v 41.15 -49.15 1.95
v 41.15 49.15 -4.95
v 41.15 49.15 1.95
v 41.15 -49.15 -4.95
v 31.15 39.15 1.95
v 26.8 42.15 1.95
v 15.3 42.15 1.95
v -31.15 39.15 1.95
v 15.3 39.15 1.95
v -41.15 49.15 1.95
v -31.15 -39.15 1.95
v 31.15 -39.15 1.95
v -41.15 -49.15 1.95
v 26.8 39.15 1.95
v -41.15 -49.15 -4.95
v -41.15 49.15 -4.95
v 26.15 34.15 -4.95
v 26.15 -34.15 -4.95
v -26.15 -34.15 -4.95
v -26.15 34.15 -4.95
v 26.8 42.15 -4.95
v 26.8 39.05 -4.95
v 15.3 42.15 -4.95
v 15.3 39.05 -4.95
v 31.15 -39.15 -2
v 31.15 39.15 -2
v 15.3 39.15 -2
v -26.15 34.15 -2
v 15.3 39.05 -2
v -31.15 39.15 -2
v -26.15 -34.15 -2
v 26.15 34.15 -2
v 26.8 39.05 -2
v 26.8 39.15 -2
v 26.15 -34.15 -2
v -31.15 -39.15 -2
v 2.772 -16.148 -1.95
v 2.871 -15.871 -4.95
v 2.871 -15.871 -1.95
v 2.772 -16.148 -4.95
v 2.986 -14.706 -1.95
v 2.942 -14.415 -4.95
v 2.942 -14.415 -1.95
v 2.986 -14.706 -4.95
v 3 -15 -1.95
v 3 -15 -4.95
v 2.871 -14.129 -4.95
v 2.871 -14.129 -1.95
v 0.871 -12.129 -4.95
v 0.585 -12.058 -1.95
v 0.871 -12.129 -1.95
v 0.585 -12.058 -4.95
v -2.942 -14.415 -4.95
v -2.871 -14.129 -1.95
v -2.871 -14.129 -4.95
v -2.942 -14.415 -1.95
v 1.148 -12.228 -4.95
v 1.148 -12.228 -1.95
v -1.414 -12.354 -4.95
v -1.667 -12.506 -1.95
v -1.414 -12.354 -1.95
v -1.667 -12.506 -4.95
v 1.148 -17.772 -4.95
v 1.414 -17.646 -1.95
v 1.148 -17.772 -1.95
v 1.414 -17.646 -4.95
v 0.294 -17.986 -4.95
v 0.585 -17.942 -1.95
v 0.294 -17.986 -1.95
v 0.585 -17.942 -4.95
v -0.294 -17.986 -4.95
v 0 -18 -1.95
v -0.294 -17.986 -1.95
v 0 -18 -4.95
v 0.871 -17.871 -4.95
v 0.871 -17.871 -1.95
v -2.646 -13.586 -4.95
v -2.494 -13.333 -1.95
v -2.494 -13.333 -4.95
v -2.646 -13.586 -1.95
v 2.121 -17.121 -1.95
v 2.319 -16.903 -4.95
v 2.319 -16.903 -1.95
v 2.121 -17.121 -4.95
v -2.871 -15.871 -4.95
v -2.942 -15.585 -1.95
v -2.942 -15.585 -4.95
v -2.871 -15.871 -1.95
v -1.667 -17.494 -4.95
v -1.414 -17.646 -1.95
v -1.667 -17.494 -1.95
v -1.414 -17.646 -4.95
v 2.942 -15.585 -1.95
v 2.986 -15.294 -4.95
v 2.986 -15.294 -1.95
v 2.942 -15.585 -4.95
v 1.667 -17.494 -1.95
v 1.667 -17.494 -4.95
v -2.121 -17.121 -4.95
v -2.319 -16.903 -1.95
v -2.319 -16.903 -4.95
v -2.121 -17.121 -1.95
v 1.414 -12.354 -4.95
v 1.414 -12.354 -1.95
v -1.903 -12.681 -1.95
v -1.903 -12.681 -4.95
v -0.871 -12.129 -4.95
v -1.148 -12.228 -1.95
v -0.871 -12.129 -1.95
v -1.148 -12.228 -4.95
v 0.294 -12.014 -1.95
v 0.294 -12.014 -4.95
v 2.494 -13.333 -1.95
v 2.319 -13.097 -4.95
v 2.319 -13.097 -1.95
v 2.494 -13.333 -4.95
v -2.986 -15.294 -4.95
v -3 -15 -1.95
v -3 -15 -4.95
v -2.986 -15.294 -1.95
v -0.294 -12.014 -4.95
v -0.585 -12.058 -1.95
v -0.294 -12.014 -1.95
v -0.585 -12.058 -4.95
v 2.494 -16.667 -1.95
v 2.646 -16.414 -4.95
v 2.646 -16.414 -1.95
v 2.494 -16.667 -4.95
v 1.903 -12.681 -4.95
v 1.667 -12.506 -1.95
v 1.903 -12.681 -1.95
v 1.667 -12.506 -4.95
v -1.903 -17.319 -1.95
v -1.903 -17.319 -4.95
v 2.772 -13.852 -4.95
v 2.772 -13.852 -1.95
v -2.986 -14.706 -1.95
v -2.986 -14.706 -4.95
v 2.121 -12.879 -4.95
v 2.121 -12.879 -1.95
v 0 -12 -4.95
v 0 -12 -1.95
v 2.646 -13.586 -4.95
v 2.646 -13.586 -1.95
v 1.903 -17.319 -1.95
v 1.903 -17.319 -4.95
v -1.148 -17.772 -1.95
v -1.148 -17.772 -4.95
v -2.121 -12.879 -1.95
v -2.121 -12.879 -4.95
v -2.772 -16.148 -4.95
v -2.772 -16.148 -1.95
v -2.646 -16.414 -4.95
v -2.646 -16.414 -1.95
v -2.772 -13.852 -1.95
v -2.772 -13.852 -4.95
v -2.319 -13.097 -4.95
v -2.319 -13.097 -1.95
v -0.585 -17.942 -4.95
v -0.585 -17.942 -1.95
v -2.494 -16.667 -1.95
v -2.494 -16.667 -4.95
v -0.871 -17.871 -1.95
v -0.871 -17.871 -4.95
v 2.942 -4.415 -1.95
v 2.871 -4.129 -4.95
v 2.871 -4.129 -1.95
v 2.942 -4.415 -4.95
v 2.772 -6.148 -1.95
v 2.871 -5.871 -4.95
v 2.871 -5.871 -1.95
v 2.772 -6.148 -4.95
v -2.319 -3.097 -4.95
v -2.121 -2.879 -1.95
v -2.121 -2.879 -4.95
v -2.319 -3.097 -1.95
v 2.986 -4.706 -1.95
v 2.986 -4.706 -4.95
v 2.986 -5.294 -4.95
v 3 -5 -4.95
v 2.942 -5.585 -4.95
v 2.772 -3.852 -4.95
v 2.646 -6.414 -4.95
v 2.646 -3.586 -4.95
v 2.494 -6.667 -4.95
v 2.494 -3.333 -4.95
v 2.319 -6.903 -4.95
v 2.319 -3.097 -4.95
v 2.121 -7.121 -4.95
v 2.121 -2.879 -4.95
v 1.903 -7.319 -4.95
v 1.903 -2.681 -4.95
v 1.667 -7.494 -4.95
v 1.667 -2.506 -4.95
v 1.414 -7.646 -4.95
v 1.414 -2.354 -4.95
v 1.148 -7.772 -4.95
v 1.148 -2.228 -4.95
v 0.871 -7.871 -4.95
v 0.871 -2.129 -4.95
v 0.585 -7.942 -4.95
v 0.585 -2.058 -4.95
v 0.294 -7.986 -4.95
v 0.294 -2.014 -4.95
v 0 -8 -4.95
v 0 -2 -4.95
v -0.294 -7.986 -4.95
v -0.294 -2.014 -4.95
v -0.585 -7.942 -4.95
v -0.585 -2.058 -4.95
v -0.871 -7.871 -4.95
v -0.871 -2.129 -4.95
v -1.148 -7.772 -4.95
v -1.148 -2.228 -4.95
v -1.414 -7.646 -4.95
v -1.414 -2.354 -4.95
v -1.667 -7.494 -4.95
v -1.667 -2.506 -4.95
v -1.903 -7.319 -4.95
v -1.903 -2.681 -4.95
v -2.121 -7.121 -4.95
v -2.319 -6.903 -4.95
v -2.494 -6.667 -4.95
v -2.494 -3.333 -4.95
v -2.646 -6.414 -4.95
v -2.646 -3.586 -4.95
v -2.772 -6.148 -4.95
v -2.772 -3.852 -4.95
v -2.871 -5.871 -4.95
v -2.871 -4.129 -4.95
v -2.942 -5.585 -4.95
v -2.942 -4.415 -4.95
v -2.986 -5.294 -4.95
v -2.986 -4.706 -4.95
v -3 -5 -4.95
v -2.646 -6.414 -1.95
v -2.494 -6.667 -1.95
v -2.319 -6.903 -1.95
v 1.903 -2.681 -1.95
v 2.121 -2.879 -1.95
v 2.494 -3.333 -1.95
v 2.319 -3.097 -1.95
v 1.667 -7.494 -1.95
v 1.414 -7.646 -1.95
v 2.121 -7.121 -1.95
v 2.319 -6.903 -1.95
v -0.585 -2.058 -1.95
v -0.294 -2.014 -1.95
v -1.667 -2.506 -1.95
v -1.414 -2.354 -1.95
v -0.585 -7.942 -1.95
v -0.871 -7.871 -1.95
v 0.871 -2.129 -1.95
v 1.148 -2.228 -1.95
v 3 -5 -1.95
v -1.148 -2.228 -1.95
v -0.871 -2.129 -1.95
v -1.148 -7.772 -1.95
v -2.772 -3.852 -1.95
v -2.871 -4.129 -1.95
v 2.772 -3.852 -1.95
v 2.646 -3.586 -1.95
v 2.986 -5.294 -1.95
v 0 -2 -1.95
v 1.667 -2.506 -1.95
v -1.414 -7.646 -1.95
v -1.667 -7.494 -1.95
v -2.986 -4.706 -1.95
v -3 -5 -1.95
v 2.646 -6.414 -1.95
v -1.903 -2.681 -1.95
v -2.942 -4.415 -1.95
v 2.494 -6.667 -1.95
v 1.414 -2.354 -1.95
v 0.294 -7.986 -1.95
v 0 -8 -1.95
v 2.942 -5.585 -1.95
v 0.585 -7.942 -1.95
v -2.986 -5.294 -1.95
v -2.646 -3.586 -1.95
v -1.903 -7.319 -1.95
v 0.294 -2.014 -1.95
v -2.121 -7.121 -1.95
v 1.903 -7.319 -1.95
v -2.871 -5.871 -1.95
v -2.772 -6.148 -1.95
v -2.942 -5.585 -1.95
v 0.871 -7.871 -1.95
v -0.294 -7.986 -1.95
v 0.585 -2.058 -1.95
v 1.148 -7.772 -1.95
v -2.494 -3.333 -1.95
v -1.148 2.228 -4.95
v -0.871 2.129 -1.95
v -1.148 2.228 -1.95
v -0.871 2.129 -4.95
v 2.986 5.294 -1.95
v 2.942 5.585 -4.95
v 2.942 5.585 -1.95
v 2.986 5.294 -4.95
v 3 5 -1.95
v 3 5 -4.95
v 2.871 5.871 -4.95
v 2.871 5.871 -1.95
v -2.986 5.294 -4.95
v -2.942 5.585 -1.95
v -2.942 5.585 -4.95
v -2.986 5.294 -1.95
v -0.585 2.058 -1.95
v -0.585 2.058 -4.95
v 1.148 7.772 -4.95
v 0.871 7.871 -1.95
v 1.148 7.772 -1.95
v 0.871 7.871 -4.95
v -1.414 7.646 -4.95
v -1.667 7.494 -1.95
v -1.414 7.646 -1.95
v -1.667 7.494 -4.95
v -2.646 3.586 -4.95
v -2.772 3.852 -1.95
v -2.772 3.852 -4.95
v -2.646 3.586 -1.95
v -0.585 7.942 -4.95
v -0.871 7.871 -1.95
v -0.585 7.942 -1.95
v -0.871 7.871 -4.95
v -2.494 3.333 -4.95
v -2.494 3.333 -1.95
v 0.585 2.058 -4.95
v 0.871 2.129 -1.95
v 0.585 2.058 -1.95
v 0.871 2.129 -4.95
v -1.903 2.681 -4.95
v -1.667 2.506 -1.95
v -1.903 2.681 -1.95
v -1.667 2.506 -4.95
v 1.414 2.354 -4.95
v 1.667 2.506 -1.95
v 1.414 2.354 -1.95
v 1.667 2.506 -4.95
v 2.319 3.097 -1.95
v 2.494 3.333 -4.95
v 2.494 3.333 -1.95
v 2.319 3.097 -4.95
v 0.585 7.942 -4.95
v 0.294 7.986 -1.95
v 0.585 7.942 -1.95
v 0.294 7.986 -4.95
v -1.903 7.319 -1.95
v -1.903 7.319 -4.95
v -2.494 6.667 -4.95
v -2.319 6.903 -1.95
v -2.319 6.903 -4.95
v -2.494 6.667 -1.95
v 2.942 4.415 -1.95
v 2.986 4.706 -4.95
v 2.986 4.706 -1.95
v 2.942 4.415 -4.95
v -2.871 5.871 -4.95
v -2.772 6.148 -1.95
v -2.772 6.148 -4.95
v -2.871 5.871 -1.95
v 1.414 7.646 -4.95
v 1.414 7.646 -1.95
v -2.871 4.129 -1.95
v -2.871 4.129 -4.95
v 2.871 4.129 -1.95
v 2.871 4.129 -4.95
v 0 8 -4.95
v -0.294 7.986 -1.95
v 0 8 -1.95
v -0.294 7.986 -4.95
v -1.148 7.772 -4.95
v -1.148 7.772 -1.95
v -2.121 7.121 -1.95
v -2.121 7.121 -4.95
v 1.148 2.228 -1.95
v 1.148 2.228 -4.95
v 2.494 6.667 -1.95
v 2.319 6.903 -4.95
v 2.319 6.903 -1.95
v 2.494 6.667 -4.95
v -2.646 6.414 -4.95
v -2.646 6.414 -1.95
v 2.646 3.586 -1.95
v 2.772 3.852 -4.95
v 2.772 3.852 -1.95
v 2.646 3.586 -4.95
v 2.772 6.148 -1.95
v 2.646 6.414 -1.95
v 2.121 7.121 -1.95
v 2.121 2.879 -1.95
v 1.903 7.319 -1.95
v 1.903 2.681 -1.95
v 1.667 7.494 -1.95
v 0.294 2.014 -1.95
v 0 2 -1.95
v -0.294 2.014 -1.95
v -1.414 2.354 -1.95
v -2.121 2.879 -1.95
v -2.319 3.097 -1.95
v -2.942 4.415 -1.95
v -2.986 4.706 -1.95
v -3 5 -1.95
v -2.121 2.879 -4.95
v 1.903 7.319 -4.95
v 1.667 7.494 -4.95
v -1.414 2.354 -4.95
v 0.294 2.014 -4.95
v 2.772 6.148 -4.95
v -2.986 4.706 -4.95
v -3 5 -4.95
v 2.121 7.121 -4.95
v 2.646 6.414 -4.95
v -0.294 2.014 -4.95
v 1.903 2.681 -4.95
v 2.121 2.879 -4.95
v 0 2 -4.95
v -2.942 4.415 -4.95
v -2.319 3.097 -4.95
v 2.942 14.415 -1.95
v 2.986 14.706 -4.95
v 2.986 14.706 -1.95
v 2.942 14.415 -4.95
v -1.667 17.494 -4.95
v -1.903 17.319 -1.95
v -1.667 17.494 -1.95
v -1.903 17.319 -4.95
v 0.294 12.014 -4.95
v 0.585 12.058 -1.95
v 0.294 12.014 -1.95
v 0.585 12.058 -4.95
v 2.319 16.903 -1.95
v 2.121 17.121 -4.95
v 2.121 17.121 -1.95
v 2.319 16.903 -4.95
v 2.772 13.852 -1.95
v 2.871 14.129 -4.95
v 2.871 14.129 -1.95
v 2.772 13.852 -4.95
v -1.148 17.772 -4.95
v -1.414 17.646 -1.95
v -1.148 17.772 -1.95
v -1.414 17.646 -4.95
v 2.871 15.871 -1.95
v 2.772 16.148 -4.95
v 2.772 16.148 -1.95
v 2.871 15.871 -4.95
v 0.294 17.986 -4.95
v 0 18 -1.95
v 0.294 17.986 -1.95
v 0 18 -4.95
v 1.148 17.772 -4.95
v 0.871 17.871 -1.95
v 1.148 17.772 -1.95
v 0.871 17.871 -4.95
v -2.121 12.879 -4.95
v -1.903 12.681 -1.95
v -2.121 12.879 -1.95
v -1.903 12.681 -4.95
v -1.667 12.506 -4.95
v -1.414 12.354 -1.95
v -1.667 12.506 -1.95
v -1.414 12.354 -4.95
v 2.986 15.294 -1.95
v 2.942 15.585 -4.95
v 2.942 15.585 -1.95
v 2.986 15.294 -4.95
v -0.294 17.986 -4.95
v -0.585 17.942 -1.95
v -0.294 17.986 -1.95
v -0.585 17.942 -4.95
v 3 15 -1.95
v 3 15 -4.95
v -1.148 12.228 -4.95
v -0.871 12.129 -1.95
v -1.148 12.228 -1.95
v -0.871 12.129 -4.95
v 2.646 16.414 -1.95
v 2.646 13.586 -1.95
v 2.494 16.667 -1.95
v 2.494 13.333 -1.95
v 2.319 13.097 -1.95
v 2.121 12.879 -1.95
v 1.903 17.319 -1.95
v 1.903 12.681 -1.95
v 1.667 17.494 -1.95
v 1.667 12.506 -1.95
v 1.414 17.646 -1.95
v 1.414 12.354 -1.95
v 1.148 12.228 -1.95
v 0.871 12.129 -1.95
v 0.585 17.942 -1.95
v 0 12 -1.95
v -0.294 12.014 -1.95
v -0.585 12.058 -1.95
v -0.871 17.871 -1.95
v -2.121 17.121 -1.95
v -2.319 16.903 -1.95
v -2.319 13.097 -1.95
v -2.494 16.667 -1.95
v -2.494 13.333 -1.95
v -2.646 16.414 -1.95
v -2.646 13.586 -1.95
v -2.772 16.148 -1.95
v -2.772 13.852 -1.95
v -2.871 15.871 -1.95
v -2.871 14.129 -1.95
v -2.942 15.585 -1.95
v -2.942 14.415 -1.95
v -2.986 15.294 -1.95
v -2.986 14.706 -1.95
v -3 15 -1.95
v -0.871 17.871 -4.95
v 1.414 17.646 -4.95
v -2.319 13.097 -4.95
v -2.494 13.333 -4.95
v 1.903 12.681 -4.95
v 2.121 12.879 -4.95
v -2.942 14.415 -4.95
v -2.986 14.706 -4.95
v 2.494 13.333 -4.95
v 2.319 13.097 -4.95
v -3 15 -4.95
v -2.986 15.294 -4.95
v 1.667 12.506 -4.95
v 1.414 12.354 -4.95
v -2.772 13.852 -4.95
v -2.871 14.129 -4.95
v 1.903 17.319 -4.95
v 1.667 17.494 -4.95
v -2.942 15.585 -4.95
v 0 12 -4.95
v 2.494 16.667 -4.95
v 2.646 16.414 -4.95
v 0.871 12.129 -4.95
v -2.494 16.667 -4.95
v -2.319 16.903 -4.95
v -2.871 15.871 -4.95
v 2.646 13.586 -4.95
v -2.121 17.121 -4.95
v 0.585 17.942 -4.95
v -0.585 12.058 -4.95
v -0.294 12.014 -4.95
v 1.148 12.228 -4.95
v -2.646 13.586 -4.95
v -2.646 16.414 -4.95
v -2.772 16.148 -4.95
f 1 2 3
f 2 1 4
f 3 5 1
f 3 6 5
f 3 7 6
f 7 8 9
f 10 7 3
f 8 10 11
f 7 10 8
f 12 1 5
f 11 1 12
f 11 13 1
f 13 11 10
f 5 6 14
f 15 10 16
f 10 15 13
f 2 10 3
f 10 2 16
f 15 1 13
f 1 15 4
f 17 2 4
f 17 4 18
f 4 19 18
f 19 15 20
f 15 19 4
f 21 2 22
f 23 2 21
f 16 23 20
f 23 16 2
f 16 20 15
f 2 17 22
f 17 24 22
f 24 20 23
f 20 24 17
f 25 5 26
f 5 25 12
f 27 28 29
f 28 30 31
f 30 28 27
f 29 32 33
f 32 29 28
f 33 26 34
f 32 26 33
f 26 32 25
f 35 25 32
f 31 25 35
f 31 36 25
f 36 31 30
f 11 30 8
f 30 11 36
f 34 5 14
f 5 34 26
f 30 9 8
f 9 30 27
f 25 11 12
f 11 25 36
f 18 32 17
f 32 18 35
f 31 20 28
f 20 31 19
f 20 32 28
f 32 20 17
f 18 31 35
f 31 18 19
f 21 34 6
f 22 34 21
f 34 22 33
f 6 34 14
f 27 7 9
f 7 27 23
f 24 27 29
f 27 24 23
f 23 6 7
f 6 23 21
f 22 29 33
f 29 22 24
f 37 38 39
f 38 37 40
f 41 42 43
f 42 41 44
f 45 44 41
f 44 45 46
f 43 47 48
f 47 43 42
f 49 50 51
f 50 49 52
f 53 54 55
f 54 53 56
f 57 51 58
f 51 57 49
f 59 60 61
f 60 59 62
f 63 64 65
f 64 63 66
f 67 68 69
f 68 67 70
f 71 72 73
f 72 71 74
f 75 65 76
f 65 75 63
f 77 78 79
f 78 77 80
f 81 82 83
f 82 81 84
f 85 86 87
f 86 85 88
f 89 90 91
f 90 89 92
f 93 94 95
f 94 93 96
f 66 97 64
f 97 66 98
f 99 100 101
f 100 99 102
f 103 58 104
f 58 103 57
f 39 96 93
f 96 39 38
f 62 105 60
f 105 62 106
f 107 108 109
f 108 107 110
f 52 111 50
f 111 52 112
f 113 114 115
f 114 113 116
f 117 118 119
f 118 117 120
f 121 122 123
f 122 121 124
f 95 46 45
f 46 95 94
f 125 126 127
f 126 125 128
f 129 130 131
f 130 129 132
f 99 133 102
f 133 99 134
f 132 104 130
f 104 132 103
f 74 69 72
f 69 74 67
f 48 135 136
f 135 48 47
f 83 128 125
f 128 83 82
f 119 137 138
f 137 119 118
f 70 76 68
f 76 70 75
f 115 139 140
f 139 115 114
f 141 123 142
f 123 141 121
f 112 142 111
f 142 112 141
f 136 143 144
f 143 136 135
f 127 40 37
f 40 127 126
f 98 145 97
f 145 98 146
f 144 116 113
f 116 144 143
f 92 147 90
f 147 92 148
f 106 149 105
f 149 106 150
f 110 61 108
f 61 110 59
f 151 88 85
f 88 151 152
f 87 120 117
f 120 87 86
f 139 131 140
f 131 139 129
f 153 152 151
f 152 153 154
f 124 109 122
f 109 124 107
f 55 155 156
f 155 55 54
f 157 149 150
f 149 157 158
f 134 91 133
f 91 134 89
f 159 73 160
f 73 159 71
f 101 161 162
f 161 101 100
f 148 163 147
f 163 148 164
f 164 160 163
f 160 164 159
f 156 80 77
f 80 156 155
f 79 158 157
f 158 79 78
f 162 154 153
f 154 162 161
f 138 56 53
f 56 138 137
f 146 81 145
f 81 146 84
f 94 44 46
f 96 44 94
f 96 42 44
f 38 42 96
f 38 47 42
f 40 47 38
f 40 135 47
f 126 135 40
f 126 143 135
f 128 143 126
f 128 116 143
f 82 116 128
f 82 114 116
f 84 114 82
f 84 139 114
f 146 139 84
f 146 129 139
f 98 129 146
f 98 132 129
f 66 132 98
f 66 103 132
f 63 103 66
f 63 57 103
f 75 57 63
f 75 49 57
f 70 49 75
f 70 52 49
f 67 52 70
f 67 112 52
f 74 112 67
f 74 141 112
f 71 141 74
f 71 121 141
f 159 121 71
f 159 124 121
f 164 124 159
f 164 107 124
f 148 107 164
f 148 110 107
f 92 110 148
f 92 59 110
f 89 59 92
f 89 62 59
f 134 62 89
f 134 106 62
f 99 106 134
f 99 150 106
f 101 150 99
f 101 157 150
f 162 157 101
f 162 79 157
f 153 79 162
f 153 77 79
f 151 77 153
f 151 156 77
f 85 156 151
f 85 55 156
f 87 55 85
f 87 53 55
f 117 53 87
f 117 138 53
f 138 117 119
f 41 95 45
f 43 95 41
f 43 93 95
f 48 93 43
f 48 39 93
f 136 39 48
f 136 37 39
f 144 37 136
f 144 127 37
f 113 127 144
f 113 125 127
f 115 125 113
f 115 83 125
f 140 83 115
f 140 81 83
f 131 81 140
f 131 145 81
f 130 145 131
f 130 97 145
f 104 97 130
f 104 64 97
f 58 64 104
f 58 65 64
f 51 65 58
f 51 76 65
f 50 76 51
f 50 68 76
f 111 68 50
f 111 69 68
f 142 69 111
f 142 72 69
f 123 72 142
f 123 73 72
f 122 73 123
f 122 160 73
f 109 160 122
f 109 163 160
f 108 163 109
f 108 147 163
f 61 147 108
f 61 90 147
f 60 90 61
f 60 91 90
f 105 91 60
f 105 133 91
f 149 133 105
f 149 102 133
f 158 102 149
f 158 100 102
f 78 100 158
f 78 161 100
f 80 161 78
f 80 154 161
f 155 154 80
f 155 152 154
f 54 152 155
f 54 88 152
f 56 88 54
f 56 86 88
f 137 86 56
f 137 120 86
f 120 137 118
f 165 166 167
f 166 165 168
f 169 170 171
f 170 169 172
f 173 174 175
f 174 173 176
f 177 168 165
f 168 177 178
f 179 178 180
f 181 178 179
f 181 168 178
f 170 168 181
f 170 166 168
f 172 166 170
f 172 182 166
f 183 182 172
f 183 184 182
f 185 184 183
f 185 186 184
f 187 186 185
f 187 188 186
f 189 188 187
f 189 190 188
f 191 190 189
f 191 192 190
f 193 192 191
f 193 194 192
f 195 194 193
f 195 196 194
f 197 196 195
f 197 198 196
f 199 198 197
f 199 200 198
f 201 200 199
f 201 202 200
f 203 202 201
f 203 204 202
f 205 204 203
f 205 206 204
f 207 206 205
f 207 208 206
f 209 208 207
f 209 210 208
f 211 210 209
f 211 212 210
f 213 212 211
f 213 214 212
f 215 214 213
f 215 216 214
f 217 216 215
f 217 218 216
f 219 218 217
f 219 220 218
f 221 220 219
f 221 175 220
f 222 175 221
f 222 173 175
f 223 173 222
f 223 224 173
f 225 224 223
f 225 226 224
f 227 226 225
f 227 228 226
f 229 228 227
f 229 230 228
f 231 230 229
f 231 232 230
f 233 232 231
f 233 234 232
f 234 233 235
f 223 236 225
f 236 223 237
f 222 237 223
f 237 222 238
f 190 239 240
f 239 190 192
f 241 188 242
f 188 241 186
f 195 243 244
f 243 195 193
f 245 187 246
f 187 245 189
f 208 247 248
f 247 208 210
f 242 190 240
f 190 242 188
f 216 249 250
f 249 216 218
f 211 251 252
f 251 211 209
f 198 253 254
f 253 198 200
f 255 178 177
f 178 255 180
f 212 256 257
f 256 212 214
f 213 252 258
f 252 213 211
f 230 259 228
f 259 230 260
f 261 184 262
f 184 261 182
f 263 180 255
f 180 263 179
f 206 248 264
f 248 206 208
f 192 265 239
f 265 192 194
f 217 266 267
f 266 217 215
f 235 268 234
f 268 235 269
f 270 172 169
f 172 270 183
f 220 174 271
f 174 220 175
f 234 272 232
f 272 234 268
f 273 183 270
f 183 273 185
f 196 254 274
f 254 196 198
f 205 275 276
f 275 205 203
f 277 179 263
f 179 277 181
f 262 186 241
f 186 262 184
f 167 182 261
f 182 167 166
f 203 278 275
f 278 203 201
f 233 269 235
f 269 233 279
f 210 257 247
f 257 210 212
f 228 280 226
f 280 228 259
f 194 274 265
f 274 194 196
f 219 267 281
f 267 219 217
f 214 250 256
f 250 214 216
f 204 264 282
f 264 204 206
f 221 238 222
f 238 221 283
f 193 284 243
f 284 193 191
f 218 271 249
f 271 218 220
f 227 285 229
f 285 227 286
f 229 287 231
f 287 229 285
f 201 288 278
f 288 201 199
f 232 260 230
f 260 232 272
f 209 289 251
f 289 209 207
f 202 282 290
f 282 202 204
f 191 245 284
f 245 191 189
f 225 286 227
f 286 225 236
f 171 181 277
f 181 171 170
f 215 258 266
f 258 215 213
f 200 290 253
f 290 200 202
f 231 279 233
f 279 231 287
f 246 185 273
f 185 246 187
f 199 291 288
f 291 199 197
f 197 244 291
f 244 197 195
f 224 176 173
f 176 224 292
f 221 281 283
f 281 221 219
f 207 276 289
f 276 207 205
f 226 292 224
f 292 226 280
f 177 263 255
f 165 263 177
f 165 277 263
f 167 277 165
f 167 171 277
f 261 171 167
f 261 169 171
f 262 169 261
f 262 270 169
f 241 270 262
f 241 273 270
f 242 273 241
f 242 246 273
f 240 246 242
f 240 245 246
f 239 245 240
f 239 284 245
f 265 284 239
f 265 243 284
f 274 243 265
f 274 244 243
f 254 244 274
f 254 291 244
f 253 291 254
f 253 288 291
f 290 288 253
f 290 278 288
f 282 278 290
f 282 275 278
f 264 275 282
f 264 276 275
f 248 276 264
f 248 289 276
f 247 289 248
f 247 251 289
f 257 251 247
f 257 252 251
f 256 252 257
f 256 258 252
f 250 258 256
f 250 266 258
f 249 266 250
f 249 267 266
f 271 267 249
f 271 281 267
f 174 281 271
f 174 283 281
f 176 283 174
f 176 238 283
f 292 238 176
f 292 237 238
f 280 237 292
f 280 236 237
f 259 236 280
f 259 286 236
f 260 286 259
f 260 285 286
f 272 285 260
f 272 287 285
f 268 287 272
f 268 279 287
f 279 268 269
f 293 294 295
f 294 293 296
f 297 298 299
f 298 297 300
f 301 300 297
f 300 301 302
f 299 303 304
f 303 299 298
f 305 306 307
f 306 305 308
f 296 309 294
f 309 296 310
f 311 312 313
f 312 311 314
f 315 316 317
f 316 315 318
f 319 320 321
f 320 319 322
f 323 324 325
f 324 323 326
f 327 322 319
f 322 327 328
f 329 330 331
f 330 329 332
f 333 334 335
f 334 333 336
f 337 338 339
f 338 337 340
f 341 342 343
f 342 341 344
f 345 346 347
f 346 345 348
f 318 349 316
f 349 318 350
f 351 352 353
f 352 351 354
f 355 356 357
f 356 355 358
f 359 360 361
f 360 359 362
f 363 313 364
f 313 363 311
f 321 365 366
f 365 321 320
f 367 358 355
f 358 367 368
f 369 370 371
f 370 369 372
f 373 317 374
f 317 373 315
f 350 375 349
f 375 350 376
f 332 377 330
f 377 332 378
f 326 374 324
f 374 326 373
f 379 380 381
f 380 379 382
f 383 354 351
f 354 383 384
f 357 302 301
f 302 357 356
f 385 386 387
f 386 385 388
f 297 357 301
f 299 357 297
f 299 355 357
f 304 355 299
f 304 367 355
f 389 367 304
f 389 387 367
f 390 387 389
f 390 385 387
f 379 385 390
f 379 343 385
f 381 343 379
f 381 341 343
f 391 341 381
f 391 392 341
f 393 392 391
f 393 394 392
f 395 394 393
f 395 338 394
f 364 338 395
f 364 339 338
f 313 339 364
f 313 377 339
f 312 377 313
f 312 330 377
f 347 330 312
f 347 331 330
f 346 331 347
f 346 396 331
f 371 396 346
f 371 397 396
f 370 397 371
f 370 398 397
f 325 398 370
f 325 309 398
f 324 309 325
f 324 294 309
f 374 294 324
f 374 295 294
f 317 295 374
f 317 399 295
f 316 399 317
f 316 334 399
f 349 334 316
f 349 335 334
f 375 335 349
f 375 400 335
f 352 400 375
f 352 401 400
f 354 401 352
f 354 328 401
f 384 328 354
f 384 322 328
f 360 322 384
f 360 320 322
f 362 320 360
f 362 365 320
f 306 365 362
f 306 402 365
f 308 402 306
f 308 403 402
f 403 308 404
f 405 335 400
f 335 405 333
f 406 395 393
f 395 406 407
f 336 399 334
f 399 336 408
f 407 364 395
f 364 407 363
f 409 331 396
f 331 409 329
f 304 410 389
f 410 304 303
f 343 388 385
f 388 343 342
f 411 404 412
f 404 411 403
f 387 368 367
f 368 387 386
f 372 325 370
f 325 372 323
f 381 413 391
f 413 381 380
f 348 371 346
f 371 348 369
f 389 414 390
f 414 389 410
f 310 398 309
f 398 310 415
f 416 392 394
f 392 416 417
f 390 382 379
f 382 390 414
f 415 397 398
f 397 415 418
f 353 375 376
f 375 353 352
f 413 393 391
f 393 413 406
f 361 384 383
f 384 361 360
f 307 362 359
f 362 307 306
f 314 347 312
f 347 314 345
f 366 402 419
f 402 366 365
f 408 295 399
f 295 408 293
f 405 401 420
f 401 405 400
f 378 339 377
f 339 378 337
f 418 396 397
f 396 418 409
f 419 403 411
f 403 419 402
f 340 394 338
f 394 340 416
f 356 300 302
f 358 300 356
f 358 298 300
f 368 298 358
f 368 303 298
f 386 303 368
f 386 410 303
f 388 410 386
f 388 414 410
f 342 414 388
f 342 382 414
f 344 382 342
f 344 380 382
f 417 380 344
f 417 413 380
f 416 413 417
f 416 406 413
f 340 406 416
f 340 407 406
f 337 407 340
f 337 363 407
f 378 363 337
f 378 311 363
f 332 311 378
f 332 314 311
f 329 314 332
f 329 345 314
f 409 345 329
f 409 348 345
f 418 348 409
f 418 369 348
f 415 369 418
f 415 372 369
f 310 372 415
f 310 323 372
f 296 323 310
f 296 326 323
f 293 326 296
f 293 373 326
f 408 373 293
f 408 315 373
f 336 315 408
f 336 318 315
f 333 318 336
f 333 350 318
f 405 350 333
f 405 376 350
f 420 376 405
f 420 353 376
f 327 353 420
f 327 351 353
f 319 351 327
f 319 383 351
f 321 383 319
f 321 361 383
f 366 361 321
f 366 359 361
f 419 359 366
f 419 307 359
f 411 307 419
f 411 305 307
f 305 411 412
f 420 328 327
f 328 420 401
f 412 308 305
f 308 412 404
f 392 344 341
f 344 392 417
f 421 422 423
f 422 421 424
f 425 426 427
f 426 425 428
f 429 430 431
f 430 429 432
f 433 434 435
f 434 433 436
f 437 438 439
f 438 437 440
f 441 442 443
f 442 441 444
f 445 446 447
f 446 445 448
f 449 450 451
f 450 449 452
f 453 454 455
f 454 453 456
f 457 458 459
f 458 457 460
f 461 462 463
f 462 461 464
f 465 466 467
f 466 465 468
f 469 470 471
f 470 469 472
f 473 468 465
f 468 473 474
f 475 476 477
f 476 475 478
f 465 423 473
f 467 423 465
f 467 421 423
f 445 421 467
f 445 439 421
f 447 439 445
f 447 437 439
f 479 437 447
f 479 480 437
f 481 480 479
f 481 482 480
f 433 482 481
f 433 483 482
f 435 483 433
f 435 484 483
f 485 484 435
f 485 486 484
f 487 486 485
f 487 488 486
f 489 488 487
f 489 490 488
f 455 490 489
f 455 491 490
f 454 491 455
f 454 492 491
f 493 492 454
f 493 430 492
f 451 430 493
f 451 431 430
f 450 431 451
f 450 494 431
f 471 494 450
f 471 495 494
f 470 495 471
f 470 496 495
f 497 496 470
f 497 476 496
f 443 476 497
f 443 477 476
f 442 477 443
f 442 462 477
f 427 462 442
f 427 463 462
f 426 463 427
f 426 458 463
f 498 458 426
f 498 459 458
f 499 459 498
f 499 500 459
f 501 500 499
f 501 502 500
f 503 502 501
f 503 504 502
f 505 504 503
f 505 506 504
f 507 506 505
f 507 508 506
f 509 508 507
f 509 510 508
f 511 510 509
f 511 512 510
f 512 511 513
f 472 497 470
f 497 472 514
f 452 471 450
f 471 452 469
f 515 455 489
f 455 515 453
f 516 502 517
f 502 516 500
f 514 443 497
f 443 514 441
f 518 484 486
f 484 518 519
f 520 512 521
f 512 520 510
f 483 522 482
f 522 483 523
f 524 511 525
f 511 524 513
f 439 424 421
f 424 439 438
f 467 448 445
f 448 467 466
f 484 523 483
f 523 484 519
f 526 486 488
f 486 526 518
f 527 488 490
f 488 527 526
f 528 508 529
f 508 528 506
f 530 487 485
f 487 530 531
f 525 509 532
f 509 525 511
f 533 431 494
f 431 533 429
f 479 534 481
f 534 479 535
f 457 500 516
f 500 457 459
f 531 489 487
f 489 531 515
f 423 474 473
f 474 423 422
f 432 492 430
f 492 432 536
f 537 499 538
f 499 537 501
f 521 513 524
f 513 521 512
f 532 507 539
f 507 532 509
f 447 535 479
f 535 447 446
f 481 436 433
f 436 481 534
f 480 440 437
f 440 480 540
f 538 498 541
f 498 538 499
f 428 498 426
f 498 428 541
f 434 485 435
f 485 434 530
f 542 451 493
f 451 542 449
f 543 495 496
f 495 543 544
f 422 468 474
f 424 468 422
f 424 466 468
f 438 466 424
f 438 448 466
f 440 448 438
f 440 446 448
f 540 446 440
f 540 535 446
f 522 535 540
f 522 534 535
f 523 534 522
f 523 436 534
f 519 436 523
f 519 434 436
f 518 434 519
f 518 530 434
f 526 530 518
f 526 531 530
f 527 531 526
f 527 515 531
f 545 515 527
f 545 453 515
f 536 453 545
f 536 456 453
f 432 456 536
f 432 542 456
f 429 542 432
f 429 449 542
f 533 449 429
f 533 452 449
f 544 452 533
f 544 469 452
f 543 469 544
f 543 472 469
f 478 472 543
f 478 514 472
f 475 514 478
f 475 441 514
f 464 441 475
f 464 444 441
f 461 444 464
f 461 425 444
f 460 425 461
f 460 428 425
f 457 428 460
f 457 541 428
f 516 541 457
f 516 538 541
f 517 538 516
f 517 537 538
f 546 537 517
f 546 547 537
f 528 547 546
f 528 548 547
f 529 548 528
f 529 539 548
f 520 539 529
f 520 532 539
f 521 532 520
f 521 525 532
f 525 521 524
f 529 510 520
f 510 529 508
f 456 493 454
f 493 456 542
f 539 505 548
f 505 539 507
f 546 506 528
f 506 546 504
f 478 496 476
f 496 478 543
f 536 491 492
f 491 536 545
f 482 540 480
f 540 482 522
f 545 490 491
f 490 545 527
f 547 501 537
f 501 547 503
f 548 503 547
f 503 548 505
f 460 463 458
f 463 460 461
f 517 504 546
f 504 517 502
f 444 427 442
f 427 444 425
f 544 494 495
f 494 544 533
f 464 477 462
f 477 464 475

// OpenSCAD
$fn=64; 

// total measurements (inner bay)
tw = 62.3;
td = 78.3;
th = 3.9;//4.4;
t_pins_from_right = 10.1; // center pin

// outer padding
op = 20.0;

// inner padding
ip = 10;

// support height
sh = 3.0;

// TE battery holder 1981061-1
bh_w = 11.2+0.3; // extra for tolerance
bh_d = 2.9+0.2;
bh_h = 7.6;
bh_pins_h = 5.8;

// position relative to center pin
module battery_holder () {
    translate ([0, bh_d/2, bh_pins_h - bh_h]) {
        color ([1.0, 0, 0]) {
            cube([bh_w, bh_d, bh_h], center=true);
        }
    }
}

// main part
difference () {
    union () {
        cube([tw+op, td+op, th], center=true);
        translate ([0, 0, -(th/2+sh/2)]) {
            cube([tw+op, td+op, sh], center=true);
        }
    }
    cube([tw, td, th+0.1], center=true);
    cube([tw-ip, td-ip, th+10],center=true);
    
    translate ([tw/2-t_pins_from_right,td/2-0.1,0]) {
        battery_holder();
    }
}

// legs

lr = 3;
lh = 3;
translate ([0, 0, -(th/2 + sh)]) {
    translate([0, -15, 0]) { cylinder(lh, lr, lr); }
    translate([0, -5, 0]) { cylinder(lh, lr, lr); }
    translate([0, 5, 0]) { cylinder(lh, lr, lr); }
    translate([0, 15, 0]) { cylinder(lh, lr, lr); }
}
